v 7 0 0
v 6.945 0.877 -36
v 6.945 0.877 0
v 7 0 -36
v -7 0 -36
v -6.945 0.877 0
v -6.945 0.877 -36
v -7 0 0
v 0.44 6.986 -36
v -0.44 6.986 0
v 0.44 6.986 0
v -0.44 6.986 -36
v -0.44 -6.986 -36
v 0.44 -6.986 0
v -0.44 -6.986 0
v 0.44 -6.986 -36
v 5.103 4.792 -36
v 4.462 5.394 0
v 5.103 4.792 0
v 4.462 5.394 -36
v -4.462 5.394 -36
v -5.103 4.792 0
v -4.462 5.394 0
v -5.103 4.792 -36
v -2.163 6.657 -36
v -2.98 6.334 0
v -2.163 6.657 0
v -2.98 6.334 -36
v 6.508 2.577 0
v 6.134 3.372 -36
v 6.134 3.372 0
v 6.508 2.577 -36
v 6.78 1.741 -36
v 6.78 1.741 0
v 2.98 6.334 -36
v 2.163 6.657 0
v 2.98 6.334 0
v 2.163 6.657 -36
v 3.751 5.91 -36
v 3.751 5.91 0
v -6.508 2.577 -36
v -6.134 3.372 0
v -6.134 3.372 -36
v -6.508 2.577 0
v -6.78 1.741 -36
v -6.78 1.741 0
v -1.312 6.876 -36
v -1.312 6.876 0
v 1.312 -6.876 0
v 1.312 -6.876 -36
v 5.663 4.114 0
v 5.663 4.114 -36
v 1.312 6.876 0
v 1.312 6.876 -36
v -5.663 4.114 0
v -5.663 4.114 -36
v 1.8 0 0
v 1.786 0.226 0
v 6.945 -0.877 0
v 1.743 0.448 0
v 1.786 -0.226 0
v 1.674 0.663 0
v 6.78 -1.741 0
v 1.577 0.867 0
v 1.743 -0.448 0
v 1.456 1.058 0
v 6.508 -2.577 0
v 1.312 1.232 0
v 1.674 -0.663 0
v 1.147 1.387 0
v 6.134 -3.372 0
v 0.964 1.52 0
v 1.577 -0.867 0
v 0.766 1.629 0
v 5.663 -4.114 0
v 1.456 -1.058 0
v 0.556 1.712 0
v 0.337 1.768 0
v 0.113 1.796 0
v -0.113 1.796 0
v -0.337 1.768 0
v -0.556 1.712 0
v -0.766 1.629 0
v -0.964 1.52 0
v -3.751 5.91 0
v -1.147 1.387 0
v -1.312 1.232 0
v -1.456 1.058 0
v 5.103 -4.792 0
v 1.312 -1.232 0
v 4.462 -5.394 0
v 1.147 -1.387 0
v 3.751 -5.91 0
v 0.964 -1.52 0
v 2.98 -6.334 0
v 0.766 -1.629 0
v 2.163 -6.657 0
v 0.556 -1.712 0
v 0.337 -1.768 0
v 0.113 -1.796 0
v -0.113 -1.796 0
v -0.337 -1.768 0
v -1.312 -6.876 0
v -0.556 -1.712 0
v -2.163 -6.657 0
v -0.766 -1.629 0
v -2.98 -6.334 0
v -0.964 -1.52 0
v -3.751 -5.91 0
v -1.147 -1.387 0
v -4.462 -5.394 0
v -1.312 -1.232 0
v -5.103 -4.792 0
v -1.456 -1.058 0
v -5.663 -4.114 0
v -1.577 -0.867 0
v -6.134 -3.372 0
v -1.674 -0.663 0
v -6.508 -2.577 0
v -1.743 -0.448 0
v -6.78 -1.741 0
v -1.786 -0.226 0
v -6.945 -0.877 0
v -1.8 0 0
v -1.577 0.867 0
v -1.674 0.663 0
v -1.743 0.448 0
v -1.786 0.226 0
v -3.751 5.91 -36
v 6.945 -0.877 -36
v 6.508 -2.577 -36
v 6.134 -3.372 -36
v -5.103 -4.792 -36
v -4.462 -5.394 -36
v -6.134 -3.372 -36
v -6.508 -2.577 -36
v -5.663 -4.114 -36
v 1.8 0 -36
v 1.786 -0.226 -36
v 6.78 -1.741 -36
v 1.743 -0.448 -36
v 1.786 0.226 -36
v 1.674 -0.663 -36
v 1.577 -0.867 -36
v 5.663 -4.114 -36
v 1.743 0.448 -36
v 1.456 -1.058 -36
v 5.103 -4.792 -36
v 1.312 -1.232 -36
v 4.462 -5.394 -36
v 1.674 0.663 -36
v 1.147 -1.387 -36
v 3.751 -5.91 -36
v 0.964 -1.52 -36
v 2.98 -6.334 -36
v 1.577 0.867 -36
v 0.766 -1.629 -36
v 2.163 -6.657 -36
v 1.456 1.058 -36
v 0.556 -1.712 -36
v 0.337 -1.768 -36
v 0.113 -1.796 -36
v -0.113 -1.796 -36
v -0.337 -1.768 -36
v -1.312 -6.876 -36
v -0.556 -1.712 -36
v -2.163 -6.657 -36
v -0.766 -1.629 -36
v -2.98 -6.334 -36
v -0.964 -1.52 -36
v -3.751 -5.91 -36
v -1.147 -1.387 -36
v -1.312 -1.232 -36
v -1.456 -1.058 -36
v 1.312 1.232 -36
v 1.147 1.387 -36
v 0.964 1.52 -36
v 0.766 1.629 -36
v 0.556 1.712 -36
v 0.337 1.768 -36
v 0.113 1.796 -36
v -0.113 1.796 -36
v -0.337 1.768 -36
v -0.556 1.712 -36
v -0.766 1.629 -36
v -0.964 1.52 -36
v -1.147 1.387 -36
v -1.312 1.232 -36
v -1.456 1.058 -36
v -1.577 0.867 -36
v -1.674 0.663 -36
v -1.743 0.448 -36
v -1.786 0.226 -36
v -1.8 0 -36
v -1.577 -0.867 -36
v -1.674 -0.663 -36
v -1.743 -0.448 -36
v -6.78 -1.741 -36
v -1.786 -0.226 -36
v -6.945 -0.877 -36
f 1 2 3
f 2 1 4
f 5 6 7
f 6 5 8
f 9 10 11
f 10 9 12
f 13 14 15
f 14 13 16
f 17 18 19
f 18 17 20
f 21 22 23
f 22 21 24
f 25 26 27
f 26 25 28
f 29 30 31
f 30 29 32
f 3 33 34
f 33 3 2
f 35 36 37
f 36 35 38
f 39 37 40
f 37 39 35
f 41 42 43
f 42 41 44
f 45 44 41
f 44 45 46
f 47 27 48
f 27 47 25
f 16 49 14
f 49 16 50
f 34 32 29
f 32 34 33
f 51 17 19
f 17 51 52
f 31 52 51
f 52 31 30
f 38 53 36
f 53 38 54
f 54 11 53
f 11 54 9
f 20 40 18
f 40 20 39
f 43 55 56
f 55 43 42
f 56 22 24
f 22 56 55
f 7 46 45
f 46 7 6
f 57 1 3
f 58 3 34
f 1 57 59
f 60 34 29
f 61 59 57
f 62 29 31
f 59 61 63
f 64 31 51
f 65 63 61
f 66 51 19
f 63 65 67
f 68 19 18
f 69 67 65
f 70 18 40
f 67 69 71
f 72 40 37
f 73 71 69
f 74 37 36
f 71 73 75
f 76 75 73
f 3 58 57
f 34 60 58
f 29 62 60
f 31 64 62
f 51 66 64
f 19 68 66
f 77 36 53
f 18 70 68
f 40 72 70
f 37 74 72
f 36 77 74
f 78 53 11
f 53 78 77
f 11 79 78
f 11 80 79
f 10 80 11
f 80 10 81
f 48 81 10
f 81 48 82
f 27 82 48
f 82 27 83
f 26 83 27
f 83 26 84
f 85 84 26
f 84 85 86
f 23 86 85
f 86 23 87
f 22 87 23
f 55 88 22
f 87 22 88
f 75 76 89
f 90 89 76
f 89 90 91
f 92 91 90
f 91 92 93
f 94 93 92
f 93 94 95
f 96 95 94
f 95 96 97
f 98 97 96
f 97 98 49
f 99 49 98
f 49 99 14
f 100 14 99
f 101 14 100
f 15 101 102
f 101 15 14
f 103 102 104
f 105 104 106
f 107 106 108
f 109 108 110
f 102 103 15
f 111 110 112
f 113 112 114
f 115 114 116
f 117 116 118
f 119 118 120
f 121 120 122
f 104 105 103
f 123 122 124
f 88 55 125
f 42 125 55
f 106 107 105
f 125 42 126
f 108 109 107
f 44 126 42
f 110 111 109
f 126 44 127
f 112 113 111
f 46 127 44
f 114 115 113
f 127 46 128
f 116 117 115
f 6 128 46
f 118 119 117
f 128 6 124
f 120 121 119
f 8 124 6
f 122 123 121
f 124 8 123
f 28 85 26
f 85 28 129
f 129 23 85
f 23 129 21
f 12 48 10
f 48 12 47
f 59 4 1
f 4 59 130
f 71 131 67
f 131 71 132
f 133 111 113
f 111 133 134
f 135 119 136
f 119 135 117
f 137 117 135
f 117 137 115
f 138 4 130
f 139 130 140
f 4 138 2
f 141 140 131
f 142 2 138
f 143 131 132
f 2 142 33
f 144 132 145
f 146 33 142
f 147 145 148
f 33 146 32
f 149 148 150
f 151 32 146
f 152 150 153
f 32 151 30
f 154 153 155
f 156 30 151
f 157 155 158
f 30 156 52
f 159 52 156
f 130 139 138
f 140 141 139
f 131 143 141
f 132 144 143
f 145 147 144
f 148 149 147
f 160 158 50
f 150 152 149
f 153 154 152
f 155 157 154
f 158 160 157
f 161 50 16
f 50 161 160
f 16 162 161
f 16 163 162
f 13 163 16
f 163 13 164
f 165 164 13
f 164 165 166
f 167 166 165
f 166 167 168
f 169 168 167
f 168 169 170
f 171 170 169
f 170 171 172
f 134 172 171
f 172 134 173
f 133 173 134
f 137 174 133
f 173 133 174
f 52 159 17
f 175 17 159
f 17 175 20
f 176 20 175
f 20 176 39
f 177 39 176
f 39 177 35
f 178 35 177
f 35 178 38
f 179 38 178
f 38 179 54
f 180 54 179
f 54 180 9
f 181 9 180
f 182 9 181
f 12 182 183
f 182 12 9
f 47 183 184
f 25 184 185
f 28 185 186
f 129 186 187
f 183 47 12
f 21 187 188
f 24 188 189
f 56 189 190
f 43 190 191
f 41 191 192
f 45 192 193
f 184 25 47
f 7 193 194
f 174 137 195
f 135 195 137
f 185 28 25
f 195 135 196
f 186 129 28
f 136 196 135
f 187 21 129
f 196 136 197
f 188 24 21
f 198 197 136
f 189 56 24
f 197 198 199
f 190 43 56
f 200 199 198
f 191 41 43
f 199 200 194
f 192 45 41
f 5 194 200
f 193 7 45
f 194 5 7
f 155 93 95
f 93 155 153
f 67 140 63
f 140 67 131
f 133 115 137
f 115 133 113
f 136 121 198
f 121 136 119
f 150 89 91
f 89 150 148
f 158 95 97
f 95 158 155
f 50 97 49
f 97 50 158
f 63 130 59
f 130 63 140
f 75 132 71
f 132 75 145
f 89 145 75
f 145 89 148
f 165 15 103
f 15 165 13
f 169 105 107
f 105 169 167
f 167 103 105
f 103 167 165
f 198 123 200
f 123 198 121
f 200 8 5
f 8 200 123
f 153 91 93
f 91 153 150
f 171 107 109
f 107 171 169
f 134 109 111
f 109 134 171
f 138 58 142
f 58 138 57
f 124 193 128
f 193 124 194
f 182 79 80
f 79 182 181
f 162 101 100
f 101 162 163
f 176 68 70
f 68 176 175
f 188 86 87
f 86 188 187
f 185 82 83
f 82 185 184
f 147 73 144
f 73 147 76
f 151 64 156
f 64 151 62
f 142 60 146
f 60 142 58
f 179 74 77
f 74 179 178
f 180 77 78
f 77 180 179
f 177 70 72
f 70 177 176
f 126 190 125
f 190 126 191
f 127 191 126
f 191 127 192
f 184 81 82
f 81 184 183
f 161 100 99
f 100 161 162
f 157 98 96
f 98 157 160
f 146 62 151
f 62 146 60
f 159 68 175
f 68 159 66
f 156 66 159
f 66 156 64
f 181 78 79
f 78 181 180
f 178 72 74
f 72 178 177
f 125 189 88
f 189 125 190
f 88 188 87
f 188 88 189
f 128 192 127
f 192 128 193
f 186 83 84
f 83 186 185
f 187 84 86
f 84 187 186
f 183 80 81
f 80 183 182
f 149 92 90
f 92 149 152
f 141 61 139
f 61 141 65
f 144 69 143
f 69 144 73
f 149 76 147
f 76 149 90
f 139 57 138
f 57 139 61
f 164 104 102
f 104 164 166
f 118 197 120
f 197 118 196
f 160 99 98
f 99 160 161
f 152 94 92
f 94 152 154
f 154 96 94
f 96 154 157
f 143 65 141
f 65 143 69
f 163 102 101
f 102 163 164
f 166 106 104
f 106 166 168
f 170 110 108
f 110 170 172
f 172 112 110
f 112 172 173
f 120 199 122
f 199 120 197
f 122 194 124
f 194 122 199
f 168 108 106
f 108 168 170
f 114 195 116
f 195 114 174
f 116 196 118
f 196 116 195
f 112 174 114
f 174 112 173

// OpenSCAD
$fn = 50;


difference() {
	union() {
		translate(v = [0, 0, -36.0000000000]) {
			cylinder(h = 36, r = 7.0000000000);
		}
		cylinder(h = 0, r = 16.0000000000);
	}
	union() {
		#translate(v = [0, 0, -36]) {
			cylinder(h = 36, r = 1.8000000000);
		}
	}
}
